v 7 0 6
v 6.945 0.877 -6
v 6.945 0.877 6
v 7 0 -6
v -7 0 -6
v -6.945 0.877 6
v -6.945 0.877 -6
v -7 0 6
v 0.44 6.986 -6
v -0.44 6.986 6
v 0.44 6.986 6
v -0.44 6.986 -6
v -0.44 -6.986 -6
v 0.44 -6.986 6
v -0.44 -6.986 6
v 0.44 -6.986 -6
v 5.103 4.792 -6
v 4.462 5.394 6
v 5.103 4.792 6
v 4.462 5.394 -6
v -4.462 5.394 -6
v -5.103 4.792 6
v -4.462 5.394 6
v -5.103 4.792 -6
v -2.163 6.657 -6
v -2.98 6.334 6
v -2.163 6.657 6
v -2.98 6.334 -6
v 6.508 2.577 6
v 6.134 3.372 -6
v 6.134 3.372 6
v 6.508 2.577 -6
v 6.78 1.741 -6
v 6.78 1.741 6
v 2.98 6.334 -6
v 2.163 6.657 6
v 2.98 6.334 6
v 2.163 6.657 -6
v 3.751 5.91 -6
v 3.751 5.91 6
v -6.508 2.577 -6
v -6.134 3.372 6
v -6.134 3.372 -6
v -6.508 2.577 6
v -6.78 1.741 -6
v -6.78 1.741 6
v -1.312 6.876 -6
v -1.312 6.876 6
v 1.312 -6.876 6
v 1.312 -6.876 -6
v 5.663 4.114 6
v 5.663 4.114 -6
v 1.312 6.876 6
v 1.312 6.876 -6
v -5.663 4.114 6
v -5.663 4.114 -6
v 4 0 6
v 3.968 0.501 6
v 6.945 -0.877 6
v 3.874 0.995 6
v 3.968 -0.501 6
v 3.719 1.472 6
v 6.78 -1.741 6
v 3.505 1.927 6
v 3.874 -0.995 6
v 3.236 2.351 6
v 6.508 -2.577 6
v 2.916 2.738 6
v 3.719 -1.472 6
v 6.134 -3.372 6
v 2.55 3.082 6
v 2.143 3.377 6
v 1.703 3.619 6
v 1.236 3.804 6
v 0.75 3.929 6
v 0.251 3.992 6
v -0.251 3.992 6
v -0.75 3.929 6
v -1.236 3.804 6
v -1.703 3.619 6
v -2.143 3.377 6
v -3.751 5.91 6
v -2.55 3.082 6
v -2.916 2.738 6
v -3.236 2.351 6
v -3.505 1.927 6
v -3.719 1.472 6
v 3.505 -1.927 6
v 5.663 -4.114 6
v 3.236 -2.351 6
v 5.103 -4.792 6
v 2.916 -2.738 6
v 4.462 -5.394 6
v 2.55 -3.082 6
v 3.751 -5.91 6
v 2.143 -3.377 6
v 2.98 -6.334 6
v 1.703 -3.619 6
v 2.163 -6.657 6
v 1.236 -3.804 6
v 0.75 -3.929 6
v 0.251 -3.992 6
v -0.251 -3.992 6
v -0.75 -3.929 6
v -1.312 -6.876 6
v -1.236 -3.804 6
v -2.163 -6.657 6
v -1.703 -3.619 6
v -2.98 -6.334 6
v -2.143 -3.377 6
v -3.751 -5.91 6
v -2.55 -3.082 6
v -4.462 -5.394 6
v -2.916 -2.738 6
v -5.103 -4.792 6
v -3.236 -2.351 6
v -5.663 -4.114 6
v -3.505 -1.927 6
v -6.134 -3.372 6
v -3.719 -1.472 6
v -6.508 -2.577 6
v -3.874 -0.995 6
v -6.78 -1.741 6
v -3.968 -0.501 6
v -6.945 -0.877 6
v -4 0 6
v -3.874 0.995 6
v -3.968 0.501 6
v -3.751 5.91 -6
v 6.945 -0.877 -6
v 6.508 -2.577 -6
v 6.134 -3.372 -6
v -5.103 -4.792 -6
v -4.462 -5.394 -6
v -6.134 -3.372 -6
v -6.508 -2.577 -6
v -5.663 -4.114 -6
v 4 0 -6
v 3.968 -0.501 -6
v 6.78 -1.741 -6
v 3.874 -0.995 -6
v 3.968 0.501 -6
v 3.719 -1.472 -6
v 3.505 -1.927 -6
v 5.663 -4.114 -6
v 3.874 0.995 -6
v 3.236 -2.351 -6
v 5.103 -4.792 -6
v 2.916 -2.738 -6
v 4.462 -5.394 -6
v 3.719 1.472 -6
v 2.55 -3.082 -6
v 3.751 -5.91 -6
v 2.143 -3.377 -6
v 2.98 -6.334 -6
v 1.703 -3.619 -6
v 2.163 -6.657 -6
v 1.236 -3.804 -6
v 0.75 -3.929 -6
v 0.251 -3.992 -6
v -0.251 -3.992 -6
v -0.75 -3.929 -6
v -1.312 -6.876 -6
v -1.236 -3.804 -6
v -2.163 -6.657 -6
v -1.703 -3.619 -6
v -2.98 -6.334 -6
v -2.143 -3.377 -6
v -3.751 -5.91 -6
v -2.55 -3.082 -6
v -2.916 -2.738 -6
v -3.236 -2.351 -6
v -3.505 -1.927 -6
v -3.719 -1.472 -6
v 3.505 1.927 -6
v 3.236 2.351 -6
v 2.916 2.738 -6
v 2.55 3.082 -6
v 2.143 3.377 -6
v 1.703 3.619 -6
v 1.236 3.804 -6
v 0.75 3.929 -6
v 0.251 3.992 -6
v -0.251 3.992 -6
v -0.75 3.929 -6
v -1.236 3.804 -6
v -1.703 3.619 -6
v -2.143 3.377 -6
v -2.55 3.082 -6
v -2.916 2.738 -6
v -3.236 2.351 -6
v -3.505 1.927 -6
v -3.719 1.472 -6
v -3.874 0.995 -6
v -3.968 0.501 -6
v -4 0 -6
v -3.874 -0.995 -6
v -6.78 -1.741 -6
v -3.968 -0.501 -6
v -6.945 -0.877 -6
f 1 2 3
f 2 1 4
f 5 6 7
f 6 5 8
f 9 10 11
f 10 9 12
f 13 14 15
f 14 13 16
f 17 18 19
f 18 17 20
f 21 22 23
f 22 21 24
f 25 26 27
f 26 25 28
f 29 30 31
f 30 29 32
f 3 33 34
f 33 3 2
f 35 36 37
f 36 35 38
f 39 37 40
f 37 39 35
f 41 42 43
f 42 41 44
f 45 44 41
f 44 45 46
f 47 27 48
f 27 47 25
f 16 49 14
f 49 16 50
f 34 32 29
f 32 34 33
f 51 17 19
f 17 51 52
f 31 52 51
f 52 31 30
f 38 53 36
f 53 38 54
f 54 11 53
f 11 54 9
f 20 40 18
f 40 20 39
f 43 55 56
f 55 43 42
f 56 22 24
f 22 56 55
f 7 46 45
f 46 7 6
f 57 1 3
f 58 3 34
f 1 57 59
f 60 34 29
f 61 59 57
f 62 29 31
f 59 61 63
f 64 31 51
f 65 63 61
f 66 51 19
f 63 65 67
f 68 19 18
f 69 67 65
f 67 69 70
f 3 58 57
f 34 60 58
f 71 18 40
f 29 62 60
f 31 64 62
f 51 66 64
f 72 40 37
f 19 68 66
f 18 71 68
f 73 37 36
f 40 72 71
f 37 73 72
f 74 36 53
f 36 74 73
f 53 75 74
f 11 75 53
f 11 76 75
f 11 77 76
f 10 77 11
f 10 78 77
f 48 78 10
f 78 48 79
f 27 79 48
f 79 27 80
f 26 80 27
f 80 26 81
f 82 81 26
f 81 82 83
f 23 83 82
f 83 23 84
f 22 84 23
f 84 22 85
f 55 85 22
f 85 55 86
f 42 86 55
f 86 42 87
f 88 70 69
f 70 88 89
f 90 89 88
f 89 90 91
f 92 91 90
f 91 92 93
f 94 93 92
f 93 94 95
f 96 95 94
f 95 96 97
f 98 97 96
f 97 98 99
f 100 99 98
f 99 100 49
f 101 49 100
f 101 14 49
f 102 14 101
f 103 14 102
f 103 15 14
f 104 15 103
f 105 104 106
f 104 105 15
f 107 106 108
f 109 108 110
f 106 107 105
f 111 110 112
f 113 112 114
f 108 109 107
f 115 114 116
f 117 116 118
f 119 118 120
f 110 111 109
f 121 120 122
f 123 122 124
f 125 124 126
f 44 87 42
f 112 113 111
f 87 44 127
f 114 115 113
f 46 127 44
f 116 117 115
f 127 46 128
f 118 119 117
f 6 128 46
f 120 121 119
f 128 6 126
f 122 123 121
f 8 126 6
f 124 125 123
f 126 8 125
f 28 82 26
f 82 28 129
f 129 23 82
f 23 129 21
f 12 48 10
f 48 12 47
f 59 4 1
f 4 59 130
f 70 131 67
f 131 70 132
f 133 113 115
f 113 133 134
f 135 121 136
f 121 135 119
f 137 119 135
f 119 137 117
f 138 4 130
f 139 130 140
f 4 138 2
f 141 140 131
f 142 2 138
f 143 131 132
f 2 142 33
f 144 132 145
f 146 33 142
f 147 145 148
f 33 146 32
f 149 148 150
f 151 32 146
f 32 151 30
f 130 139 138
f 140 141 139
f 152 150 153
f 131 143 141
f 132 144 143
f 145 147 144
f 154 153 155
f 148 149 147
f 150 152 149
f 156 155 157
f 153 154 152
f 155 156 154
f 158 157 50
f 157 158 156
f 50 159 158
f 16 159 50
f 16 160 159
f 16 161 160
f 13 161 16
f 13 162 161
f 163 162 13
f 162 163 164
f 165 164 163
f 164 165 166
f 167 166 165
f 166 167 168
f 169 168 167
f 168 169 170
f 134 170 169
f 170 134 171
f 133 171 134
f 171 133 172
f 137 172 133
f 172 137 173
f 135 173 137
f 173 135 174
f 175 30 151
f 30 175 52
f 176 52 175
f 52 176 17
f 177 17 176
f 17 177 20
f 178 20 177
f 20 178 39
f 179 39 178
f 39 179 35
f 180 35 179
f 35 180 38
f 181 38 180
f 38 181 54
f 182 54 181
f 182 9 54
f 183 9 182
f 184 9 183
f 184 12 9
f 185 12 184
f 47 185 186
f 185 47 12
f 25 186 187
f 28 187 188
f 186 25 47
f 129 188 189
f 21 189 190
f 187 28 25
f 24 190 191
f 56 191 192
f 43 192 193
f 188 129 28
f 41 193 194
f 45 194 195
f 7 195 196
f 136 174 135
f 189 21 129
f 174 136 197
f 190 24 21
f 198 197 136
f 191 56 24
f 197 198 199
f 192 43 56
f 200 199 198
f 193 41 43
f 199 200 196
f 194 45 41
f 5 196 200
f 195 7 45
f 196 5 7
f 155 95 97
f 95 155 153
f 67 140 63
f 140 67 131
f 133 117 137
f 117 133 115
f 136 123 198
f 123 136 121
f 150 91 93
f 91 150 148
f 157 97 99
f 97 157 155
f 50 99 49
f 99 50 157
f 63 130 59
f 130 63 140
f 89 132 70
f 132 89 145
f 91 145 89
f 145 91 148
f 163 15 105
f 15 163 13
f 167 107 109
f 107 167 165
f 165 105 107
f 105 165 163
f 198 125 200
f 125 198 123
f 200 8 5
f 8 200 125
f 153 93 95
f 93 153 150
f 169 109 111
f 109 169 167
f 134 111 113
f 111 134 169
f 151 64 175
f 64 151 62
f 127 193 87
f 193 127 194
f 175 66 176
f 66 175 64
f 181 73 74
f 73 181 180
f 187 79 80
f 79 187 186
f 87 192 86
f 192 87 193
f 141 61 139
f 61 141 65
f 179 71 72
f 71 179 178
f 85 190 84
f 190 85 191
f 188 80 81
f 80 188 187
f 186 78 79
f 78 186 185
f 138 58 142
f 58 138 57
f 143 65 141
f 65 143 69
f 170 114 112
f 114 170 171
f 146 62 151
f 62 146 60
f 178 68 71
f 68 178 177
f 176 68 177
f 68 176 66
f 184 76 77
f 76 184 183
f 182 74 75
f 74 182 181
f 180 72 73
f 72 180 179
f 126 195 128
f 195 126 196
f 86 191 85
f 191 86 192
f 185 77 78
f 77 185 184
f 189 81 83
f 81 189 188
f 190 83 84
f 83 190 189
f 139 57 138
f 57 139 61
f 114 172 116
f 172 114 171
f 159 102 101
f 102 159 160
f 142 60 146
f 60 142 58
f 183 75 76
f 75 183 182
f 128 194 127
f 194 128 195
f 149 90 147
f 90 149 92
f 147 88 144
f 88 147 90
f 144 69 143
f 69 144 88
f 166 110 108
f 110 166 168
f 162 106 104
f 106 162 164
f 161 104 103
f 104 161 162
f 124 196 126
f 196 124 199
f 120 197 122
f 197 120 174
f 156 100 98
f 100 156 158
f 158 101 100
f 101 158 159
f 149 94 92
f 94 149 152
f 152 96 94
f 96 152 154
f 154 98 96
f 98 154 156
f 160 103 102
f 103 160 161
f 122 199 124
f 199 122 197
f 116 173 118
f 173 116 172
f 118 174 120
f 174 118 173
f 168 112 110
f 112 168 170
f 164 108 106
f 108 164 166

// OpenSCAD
$fn = 50;


difference() {
	union() {
		translate(v = [0, 0, -6.0000000000]) {
			cylinder(h = 12, r = 7.0000000000);
		}
	}
	union() {
		translate(v = [0, 0, -100.0000000000]) {
			cylinder(h = 200, r = 4);
		}
	}
}
